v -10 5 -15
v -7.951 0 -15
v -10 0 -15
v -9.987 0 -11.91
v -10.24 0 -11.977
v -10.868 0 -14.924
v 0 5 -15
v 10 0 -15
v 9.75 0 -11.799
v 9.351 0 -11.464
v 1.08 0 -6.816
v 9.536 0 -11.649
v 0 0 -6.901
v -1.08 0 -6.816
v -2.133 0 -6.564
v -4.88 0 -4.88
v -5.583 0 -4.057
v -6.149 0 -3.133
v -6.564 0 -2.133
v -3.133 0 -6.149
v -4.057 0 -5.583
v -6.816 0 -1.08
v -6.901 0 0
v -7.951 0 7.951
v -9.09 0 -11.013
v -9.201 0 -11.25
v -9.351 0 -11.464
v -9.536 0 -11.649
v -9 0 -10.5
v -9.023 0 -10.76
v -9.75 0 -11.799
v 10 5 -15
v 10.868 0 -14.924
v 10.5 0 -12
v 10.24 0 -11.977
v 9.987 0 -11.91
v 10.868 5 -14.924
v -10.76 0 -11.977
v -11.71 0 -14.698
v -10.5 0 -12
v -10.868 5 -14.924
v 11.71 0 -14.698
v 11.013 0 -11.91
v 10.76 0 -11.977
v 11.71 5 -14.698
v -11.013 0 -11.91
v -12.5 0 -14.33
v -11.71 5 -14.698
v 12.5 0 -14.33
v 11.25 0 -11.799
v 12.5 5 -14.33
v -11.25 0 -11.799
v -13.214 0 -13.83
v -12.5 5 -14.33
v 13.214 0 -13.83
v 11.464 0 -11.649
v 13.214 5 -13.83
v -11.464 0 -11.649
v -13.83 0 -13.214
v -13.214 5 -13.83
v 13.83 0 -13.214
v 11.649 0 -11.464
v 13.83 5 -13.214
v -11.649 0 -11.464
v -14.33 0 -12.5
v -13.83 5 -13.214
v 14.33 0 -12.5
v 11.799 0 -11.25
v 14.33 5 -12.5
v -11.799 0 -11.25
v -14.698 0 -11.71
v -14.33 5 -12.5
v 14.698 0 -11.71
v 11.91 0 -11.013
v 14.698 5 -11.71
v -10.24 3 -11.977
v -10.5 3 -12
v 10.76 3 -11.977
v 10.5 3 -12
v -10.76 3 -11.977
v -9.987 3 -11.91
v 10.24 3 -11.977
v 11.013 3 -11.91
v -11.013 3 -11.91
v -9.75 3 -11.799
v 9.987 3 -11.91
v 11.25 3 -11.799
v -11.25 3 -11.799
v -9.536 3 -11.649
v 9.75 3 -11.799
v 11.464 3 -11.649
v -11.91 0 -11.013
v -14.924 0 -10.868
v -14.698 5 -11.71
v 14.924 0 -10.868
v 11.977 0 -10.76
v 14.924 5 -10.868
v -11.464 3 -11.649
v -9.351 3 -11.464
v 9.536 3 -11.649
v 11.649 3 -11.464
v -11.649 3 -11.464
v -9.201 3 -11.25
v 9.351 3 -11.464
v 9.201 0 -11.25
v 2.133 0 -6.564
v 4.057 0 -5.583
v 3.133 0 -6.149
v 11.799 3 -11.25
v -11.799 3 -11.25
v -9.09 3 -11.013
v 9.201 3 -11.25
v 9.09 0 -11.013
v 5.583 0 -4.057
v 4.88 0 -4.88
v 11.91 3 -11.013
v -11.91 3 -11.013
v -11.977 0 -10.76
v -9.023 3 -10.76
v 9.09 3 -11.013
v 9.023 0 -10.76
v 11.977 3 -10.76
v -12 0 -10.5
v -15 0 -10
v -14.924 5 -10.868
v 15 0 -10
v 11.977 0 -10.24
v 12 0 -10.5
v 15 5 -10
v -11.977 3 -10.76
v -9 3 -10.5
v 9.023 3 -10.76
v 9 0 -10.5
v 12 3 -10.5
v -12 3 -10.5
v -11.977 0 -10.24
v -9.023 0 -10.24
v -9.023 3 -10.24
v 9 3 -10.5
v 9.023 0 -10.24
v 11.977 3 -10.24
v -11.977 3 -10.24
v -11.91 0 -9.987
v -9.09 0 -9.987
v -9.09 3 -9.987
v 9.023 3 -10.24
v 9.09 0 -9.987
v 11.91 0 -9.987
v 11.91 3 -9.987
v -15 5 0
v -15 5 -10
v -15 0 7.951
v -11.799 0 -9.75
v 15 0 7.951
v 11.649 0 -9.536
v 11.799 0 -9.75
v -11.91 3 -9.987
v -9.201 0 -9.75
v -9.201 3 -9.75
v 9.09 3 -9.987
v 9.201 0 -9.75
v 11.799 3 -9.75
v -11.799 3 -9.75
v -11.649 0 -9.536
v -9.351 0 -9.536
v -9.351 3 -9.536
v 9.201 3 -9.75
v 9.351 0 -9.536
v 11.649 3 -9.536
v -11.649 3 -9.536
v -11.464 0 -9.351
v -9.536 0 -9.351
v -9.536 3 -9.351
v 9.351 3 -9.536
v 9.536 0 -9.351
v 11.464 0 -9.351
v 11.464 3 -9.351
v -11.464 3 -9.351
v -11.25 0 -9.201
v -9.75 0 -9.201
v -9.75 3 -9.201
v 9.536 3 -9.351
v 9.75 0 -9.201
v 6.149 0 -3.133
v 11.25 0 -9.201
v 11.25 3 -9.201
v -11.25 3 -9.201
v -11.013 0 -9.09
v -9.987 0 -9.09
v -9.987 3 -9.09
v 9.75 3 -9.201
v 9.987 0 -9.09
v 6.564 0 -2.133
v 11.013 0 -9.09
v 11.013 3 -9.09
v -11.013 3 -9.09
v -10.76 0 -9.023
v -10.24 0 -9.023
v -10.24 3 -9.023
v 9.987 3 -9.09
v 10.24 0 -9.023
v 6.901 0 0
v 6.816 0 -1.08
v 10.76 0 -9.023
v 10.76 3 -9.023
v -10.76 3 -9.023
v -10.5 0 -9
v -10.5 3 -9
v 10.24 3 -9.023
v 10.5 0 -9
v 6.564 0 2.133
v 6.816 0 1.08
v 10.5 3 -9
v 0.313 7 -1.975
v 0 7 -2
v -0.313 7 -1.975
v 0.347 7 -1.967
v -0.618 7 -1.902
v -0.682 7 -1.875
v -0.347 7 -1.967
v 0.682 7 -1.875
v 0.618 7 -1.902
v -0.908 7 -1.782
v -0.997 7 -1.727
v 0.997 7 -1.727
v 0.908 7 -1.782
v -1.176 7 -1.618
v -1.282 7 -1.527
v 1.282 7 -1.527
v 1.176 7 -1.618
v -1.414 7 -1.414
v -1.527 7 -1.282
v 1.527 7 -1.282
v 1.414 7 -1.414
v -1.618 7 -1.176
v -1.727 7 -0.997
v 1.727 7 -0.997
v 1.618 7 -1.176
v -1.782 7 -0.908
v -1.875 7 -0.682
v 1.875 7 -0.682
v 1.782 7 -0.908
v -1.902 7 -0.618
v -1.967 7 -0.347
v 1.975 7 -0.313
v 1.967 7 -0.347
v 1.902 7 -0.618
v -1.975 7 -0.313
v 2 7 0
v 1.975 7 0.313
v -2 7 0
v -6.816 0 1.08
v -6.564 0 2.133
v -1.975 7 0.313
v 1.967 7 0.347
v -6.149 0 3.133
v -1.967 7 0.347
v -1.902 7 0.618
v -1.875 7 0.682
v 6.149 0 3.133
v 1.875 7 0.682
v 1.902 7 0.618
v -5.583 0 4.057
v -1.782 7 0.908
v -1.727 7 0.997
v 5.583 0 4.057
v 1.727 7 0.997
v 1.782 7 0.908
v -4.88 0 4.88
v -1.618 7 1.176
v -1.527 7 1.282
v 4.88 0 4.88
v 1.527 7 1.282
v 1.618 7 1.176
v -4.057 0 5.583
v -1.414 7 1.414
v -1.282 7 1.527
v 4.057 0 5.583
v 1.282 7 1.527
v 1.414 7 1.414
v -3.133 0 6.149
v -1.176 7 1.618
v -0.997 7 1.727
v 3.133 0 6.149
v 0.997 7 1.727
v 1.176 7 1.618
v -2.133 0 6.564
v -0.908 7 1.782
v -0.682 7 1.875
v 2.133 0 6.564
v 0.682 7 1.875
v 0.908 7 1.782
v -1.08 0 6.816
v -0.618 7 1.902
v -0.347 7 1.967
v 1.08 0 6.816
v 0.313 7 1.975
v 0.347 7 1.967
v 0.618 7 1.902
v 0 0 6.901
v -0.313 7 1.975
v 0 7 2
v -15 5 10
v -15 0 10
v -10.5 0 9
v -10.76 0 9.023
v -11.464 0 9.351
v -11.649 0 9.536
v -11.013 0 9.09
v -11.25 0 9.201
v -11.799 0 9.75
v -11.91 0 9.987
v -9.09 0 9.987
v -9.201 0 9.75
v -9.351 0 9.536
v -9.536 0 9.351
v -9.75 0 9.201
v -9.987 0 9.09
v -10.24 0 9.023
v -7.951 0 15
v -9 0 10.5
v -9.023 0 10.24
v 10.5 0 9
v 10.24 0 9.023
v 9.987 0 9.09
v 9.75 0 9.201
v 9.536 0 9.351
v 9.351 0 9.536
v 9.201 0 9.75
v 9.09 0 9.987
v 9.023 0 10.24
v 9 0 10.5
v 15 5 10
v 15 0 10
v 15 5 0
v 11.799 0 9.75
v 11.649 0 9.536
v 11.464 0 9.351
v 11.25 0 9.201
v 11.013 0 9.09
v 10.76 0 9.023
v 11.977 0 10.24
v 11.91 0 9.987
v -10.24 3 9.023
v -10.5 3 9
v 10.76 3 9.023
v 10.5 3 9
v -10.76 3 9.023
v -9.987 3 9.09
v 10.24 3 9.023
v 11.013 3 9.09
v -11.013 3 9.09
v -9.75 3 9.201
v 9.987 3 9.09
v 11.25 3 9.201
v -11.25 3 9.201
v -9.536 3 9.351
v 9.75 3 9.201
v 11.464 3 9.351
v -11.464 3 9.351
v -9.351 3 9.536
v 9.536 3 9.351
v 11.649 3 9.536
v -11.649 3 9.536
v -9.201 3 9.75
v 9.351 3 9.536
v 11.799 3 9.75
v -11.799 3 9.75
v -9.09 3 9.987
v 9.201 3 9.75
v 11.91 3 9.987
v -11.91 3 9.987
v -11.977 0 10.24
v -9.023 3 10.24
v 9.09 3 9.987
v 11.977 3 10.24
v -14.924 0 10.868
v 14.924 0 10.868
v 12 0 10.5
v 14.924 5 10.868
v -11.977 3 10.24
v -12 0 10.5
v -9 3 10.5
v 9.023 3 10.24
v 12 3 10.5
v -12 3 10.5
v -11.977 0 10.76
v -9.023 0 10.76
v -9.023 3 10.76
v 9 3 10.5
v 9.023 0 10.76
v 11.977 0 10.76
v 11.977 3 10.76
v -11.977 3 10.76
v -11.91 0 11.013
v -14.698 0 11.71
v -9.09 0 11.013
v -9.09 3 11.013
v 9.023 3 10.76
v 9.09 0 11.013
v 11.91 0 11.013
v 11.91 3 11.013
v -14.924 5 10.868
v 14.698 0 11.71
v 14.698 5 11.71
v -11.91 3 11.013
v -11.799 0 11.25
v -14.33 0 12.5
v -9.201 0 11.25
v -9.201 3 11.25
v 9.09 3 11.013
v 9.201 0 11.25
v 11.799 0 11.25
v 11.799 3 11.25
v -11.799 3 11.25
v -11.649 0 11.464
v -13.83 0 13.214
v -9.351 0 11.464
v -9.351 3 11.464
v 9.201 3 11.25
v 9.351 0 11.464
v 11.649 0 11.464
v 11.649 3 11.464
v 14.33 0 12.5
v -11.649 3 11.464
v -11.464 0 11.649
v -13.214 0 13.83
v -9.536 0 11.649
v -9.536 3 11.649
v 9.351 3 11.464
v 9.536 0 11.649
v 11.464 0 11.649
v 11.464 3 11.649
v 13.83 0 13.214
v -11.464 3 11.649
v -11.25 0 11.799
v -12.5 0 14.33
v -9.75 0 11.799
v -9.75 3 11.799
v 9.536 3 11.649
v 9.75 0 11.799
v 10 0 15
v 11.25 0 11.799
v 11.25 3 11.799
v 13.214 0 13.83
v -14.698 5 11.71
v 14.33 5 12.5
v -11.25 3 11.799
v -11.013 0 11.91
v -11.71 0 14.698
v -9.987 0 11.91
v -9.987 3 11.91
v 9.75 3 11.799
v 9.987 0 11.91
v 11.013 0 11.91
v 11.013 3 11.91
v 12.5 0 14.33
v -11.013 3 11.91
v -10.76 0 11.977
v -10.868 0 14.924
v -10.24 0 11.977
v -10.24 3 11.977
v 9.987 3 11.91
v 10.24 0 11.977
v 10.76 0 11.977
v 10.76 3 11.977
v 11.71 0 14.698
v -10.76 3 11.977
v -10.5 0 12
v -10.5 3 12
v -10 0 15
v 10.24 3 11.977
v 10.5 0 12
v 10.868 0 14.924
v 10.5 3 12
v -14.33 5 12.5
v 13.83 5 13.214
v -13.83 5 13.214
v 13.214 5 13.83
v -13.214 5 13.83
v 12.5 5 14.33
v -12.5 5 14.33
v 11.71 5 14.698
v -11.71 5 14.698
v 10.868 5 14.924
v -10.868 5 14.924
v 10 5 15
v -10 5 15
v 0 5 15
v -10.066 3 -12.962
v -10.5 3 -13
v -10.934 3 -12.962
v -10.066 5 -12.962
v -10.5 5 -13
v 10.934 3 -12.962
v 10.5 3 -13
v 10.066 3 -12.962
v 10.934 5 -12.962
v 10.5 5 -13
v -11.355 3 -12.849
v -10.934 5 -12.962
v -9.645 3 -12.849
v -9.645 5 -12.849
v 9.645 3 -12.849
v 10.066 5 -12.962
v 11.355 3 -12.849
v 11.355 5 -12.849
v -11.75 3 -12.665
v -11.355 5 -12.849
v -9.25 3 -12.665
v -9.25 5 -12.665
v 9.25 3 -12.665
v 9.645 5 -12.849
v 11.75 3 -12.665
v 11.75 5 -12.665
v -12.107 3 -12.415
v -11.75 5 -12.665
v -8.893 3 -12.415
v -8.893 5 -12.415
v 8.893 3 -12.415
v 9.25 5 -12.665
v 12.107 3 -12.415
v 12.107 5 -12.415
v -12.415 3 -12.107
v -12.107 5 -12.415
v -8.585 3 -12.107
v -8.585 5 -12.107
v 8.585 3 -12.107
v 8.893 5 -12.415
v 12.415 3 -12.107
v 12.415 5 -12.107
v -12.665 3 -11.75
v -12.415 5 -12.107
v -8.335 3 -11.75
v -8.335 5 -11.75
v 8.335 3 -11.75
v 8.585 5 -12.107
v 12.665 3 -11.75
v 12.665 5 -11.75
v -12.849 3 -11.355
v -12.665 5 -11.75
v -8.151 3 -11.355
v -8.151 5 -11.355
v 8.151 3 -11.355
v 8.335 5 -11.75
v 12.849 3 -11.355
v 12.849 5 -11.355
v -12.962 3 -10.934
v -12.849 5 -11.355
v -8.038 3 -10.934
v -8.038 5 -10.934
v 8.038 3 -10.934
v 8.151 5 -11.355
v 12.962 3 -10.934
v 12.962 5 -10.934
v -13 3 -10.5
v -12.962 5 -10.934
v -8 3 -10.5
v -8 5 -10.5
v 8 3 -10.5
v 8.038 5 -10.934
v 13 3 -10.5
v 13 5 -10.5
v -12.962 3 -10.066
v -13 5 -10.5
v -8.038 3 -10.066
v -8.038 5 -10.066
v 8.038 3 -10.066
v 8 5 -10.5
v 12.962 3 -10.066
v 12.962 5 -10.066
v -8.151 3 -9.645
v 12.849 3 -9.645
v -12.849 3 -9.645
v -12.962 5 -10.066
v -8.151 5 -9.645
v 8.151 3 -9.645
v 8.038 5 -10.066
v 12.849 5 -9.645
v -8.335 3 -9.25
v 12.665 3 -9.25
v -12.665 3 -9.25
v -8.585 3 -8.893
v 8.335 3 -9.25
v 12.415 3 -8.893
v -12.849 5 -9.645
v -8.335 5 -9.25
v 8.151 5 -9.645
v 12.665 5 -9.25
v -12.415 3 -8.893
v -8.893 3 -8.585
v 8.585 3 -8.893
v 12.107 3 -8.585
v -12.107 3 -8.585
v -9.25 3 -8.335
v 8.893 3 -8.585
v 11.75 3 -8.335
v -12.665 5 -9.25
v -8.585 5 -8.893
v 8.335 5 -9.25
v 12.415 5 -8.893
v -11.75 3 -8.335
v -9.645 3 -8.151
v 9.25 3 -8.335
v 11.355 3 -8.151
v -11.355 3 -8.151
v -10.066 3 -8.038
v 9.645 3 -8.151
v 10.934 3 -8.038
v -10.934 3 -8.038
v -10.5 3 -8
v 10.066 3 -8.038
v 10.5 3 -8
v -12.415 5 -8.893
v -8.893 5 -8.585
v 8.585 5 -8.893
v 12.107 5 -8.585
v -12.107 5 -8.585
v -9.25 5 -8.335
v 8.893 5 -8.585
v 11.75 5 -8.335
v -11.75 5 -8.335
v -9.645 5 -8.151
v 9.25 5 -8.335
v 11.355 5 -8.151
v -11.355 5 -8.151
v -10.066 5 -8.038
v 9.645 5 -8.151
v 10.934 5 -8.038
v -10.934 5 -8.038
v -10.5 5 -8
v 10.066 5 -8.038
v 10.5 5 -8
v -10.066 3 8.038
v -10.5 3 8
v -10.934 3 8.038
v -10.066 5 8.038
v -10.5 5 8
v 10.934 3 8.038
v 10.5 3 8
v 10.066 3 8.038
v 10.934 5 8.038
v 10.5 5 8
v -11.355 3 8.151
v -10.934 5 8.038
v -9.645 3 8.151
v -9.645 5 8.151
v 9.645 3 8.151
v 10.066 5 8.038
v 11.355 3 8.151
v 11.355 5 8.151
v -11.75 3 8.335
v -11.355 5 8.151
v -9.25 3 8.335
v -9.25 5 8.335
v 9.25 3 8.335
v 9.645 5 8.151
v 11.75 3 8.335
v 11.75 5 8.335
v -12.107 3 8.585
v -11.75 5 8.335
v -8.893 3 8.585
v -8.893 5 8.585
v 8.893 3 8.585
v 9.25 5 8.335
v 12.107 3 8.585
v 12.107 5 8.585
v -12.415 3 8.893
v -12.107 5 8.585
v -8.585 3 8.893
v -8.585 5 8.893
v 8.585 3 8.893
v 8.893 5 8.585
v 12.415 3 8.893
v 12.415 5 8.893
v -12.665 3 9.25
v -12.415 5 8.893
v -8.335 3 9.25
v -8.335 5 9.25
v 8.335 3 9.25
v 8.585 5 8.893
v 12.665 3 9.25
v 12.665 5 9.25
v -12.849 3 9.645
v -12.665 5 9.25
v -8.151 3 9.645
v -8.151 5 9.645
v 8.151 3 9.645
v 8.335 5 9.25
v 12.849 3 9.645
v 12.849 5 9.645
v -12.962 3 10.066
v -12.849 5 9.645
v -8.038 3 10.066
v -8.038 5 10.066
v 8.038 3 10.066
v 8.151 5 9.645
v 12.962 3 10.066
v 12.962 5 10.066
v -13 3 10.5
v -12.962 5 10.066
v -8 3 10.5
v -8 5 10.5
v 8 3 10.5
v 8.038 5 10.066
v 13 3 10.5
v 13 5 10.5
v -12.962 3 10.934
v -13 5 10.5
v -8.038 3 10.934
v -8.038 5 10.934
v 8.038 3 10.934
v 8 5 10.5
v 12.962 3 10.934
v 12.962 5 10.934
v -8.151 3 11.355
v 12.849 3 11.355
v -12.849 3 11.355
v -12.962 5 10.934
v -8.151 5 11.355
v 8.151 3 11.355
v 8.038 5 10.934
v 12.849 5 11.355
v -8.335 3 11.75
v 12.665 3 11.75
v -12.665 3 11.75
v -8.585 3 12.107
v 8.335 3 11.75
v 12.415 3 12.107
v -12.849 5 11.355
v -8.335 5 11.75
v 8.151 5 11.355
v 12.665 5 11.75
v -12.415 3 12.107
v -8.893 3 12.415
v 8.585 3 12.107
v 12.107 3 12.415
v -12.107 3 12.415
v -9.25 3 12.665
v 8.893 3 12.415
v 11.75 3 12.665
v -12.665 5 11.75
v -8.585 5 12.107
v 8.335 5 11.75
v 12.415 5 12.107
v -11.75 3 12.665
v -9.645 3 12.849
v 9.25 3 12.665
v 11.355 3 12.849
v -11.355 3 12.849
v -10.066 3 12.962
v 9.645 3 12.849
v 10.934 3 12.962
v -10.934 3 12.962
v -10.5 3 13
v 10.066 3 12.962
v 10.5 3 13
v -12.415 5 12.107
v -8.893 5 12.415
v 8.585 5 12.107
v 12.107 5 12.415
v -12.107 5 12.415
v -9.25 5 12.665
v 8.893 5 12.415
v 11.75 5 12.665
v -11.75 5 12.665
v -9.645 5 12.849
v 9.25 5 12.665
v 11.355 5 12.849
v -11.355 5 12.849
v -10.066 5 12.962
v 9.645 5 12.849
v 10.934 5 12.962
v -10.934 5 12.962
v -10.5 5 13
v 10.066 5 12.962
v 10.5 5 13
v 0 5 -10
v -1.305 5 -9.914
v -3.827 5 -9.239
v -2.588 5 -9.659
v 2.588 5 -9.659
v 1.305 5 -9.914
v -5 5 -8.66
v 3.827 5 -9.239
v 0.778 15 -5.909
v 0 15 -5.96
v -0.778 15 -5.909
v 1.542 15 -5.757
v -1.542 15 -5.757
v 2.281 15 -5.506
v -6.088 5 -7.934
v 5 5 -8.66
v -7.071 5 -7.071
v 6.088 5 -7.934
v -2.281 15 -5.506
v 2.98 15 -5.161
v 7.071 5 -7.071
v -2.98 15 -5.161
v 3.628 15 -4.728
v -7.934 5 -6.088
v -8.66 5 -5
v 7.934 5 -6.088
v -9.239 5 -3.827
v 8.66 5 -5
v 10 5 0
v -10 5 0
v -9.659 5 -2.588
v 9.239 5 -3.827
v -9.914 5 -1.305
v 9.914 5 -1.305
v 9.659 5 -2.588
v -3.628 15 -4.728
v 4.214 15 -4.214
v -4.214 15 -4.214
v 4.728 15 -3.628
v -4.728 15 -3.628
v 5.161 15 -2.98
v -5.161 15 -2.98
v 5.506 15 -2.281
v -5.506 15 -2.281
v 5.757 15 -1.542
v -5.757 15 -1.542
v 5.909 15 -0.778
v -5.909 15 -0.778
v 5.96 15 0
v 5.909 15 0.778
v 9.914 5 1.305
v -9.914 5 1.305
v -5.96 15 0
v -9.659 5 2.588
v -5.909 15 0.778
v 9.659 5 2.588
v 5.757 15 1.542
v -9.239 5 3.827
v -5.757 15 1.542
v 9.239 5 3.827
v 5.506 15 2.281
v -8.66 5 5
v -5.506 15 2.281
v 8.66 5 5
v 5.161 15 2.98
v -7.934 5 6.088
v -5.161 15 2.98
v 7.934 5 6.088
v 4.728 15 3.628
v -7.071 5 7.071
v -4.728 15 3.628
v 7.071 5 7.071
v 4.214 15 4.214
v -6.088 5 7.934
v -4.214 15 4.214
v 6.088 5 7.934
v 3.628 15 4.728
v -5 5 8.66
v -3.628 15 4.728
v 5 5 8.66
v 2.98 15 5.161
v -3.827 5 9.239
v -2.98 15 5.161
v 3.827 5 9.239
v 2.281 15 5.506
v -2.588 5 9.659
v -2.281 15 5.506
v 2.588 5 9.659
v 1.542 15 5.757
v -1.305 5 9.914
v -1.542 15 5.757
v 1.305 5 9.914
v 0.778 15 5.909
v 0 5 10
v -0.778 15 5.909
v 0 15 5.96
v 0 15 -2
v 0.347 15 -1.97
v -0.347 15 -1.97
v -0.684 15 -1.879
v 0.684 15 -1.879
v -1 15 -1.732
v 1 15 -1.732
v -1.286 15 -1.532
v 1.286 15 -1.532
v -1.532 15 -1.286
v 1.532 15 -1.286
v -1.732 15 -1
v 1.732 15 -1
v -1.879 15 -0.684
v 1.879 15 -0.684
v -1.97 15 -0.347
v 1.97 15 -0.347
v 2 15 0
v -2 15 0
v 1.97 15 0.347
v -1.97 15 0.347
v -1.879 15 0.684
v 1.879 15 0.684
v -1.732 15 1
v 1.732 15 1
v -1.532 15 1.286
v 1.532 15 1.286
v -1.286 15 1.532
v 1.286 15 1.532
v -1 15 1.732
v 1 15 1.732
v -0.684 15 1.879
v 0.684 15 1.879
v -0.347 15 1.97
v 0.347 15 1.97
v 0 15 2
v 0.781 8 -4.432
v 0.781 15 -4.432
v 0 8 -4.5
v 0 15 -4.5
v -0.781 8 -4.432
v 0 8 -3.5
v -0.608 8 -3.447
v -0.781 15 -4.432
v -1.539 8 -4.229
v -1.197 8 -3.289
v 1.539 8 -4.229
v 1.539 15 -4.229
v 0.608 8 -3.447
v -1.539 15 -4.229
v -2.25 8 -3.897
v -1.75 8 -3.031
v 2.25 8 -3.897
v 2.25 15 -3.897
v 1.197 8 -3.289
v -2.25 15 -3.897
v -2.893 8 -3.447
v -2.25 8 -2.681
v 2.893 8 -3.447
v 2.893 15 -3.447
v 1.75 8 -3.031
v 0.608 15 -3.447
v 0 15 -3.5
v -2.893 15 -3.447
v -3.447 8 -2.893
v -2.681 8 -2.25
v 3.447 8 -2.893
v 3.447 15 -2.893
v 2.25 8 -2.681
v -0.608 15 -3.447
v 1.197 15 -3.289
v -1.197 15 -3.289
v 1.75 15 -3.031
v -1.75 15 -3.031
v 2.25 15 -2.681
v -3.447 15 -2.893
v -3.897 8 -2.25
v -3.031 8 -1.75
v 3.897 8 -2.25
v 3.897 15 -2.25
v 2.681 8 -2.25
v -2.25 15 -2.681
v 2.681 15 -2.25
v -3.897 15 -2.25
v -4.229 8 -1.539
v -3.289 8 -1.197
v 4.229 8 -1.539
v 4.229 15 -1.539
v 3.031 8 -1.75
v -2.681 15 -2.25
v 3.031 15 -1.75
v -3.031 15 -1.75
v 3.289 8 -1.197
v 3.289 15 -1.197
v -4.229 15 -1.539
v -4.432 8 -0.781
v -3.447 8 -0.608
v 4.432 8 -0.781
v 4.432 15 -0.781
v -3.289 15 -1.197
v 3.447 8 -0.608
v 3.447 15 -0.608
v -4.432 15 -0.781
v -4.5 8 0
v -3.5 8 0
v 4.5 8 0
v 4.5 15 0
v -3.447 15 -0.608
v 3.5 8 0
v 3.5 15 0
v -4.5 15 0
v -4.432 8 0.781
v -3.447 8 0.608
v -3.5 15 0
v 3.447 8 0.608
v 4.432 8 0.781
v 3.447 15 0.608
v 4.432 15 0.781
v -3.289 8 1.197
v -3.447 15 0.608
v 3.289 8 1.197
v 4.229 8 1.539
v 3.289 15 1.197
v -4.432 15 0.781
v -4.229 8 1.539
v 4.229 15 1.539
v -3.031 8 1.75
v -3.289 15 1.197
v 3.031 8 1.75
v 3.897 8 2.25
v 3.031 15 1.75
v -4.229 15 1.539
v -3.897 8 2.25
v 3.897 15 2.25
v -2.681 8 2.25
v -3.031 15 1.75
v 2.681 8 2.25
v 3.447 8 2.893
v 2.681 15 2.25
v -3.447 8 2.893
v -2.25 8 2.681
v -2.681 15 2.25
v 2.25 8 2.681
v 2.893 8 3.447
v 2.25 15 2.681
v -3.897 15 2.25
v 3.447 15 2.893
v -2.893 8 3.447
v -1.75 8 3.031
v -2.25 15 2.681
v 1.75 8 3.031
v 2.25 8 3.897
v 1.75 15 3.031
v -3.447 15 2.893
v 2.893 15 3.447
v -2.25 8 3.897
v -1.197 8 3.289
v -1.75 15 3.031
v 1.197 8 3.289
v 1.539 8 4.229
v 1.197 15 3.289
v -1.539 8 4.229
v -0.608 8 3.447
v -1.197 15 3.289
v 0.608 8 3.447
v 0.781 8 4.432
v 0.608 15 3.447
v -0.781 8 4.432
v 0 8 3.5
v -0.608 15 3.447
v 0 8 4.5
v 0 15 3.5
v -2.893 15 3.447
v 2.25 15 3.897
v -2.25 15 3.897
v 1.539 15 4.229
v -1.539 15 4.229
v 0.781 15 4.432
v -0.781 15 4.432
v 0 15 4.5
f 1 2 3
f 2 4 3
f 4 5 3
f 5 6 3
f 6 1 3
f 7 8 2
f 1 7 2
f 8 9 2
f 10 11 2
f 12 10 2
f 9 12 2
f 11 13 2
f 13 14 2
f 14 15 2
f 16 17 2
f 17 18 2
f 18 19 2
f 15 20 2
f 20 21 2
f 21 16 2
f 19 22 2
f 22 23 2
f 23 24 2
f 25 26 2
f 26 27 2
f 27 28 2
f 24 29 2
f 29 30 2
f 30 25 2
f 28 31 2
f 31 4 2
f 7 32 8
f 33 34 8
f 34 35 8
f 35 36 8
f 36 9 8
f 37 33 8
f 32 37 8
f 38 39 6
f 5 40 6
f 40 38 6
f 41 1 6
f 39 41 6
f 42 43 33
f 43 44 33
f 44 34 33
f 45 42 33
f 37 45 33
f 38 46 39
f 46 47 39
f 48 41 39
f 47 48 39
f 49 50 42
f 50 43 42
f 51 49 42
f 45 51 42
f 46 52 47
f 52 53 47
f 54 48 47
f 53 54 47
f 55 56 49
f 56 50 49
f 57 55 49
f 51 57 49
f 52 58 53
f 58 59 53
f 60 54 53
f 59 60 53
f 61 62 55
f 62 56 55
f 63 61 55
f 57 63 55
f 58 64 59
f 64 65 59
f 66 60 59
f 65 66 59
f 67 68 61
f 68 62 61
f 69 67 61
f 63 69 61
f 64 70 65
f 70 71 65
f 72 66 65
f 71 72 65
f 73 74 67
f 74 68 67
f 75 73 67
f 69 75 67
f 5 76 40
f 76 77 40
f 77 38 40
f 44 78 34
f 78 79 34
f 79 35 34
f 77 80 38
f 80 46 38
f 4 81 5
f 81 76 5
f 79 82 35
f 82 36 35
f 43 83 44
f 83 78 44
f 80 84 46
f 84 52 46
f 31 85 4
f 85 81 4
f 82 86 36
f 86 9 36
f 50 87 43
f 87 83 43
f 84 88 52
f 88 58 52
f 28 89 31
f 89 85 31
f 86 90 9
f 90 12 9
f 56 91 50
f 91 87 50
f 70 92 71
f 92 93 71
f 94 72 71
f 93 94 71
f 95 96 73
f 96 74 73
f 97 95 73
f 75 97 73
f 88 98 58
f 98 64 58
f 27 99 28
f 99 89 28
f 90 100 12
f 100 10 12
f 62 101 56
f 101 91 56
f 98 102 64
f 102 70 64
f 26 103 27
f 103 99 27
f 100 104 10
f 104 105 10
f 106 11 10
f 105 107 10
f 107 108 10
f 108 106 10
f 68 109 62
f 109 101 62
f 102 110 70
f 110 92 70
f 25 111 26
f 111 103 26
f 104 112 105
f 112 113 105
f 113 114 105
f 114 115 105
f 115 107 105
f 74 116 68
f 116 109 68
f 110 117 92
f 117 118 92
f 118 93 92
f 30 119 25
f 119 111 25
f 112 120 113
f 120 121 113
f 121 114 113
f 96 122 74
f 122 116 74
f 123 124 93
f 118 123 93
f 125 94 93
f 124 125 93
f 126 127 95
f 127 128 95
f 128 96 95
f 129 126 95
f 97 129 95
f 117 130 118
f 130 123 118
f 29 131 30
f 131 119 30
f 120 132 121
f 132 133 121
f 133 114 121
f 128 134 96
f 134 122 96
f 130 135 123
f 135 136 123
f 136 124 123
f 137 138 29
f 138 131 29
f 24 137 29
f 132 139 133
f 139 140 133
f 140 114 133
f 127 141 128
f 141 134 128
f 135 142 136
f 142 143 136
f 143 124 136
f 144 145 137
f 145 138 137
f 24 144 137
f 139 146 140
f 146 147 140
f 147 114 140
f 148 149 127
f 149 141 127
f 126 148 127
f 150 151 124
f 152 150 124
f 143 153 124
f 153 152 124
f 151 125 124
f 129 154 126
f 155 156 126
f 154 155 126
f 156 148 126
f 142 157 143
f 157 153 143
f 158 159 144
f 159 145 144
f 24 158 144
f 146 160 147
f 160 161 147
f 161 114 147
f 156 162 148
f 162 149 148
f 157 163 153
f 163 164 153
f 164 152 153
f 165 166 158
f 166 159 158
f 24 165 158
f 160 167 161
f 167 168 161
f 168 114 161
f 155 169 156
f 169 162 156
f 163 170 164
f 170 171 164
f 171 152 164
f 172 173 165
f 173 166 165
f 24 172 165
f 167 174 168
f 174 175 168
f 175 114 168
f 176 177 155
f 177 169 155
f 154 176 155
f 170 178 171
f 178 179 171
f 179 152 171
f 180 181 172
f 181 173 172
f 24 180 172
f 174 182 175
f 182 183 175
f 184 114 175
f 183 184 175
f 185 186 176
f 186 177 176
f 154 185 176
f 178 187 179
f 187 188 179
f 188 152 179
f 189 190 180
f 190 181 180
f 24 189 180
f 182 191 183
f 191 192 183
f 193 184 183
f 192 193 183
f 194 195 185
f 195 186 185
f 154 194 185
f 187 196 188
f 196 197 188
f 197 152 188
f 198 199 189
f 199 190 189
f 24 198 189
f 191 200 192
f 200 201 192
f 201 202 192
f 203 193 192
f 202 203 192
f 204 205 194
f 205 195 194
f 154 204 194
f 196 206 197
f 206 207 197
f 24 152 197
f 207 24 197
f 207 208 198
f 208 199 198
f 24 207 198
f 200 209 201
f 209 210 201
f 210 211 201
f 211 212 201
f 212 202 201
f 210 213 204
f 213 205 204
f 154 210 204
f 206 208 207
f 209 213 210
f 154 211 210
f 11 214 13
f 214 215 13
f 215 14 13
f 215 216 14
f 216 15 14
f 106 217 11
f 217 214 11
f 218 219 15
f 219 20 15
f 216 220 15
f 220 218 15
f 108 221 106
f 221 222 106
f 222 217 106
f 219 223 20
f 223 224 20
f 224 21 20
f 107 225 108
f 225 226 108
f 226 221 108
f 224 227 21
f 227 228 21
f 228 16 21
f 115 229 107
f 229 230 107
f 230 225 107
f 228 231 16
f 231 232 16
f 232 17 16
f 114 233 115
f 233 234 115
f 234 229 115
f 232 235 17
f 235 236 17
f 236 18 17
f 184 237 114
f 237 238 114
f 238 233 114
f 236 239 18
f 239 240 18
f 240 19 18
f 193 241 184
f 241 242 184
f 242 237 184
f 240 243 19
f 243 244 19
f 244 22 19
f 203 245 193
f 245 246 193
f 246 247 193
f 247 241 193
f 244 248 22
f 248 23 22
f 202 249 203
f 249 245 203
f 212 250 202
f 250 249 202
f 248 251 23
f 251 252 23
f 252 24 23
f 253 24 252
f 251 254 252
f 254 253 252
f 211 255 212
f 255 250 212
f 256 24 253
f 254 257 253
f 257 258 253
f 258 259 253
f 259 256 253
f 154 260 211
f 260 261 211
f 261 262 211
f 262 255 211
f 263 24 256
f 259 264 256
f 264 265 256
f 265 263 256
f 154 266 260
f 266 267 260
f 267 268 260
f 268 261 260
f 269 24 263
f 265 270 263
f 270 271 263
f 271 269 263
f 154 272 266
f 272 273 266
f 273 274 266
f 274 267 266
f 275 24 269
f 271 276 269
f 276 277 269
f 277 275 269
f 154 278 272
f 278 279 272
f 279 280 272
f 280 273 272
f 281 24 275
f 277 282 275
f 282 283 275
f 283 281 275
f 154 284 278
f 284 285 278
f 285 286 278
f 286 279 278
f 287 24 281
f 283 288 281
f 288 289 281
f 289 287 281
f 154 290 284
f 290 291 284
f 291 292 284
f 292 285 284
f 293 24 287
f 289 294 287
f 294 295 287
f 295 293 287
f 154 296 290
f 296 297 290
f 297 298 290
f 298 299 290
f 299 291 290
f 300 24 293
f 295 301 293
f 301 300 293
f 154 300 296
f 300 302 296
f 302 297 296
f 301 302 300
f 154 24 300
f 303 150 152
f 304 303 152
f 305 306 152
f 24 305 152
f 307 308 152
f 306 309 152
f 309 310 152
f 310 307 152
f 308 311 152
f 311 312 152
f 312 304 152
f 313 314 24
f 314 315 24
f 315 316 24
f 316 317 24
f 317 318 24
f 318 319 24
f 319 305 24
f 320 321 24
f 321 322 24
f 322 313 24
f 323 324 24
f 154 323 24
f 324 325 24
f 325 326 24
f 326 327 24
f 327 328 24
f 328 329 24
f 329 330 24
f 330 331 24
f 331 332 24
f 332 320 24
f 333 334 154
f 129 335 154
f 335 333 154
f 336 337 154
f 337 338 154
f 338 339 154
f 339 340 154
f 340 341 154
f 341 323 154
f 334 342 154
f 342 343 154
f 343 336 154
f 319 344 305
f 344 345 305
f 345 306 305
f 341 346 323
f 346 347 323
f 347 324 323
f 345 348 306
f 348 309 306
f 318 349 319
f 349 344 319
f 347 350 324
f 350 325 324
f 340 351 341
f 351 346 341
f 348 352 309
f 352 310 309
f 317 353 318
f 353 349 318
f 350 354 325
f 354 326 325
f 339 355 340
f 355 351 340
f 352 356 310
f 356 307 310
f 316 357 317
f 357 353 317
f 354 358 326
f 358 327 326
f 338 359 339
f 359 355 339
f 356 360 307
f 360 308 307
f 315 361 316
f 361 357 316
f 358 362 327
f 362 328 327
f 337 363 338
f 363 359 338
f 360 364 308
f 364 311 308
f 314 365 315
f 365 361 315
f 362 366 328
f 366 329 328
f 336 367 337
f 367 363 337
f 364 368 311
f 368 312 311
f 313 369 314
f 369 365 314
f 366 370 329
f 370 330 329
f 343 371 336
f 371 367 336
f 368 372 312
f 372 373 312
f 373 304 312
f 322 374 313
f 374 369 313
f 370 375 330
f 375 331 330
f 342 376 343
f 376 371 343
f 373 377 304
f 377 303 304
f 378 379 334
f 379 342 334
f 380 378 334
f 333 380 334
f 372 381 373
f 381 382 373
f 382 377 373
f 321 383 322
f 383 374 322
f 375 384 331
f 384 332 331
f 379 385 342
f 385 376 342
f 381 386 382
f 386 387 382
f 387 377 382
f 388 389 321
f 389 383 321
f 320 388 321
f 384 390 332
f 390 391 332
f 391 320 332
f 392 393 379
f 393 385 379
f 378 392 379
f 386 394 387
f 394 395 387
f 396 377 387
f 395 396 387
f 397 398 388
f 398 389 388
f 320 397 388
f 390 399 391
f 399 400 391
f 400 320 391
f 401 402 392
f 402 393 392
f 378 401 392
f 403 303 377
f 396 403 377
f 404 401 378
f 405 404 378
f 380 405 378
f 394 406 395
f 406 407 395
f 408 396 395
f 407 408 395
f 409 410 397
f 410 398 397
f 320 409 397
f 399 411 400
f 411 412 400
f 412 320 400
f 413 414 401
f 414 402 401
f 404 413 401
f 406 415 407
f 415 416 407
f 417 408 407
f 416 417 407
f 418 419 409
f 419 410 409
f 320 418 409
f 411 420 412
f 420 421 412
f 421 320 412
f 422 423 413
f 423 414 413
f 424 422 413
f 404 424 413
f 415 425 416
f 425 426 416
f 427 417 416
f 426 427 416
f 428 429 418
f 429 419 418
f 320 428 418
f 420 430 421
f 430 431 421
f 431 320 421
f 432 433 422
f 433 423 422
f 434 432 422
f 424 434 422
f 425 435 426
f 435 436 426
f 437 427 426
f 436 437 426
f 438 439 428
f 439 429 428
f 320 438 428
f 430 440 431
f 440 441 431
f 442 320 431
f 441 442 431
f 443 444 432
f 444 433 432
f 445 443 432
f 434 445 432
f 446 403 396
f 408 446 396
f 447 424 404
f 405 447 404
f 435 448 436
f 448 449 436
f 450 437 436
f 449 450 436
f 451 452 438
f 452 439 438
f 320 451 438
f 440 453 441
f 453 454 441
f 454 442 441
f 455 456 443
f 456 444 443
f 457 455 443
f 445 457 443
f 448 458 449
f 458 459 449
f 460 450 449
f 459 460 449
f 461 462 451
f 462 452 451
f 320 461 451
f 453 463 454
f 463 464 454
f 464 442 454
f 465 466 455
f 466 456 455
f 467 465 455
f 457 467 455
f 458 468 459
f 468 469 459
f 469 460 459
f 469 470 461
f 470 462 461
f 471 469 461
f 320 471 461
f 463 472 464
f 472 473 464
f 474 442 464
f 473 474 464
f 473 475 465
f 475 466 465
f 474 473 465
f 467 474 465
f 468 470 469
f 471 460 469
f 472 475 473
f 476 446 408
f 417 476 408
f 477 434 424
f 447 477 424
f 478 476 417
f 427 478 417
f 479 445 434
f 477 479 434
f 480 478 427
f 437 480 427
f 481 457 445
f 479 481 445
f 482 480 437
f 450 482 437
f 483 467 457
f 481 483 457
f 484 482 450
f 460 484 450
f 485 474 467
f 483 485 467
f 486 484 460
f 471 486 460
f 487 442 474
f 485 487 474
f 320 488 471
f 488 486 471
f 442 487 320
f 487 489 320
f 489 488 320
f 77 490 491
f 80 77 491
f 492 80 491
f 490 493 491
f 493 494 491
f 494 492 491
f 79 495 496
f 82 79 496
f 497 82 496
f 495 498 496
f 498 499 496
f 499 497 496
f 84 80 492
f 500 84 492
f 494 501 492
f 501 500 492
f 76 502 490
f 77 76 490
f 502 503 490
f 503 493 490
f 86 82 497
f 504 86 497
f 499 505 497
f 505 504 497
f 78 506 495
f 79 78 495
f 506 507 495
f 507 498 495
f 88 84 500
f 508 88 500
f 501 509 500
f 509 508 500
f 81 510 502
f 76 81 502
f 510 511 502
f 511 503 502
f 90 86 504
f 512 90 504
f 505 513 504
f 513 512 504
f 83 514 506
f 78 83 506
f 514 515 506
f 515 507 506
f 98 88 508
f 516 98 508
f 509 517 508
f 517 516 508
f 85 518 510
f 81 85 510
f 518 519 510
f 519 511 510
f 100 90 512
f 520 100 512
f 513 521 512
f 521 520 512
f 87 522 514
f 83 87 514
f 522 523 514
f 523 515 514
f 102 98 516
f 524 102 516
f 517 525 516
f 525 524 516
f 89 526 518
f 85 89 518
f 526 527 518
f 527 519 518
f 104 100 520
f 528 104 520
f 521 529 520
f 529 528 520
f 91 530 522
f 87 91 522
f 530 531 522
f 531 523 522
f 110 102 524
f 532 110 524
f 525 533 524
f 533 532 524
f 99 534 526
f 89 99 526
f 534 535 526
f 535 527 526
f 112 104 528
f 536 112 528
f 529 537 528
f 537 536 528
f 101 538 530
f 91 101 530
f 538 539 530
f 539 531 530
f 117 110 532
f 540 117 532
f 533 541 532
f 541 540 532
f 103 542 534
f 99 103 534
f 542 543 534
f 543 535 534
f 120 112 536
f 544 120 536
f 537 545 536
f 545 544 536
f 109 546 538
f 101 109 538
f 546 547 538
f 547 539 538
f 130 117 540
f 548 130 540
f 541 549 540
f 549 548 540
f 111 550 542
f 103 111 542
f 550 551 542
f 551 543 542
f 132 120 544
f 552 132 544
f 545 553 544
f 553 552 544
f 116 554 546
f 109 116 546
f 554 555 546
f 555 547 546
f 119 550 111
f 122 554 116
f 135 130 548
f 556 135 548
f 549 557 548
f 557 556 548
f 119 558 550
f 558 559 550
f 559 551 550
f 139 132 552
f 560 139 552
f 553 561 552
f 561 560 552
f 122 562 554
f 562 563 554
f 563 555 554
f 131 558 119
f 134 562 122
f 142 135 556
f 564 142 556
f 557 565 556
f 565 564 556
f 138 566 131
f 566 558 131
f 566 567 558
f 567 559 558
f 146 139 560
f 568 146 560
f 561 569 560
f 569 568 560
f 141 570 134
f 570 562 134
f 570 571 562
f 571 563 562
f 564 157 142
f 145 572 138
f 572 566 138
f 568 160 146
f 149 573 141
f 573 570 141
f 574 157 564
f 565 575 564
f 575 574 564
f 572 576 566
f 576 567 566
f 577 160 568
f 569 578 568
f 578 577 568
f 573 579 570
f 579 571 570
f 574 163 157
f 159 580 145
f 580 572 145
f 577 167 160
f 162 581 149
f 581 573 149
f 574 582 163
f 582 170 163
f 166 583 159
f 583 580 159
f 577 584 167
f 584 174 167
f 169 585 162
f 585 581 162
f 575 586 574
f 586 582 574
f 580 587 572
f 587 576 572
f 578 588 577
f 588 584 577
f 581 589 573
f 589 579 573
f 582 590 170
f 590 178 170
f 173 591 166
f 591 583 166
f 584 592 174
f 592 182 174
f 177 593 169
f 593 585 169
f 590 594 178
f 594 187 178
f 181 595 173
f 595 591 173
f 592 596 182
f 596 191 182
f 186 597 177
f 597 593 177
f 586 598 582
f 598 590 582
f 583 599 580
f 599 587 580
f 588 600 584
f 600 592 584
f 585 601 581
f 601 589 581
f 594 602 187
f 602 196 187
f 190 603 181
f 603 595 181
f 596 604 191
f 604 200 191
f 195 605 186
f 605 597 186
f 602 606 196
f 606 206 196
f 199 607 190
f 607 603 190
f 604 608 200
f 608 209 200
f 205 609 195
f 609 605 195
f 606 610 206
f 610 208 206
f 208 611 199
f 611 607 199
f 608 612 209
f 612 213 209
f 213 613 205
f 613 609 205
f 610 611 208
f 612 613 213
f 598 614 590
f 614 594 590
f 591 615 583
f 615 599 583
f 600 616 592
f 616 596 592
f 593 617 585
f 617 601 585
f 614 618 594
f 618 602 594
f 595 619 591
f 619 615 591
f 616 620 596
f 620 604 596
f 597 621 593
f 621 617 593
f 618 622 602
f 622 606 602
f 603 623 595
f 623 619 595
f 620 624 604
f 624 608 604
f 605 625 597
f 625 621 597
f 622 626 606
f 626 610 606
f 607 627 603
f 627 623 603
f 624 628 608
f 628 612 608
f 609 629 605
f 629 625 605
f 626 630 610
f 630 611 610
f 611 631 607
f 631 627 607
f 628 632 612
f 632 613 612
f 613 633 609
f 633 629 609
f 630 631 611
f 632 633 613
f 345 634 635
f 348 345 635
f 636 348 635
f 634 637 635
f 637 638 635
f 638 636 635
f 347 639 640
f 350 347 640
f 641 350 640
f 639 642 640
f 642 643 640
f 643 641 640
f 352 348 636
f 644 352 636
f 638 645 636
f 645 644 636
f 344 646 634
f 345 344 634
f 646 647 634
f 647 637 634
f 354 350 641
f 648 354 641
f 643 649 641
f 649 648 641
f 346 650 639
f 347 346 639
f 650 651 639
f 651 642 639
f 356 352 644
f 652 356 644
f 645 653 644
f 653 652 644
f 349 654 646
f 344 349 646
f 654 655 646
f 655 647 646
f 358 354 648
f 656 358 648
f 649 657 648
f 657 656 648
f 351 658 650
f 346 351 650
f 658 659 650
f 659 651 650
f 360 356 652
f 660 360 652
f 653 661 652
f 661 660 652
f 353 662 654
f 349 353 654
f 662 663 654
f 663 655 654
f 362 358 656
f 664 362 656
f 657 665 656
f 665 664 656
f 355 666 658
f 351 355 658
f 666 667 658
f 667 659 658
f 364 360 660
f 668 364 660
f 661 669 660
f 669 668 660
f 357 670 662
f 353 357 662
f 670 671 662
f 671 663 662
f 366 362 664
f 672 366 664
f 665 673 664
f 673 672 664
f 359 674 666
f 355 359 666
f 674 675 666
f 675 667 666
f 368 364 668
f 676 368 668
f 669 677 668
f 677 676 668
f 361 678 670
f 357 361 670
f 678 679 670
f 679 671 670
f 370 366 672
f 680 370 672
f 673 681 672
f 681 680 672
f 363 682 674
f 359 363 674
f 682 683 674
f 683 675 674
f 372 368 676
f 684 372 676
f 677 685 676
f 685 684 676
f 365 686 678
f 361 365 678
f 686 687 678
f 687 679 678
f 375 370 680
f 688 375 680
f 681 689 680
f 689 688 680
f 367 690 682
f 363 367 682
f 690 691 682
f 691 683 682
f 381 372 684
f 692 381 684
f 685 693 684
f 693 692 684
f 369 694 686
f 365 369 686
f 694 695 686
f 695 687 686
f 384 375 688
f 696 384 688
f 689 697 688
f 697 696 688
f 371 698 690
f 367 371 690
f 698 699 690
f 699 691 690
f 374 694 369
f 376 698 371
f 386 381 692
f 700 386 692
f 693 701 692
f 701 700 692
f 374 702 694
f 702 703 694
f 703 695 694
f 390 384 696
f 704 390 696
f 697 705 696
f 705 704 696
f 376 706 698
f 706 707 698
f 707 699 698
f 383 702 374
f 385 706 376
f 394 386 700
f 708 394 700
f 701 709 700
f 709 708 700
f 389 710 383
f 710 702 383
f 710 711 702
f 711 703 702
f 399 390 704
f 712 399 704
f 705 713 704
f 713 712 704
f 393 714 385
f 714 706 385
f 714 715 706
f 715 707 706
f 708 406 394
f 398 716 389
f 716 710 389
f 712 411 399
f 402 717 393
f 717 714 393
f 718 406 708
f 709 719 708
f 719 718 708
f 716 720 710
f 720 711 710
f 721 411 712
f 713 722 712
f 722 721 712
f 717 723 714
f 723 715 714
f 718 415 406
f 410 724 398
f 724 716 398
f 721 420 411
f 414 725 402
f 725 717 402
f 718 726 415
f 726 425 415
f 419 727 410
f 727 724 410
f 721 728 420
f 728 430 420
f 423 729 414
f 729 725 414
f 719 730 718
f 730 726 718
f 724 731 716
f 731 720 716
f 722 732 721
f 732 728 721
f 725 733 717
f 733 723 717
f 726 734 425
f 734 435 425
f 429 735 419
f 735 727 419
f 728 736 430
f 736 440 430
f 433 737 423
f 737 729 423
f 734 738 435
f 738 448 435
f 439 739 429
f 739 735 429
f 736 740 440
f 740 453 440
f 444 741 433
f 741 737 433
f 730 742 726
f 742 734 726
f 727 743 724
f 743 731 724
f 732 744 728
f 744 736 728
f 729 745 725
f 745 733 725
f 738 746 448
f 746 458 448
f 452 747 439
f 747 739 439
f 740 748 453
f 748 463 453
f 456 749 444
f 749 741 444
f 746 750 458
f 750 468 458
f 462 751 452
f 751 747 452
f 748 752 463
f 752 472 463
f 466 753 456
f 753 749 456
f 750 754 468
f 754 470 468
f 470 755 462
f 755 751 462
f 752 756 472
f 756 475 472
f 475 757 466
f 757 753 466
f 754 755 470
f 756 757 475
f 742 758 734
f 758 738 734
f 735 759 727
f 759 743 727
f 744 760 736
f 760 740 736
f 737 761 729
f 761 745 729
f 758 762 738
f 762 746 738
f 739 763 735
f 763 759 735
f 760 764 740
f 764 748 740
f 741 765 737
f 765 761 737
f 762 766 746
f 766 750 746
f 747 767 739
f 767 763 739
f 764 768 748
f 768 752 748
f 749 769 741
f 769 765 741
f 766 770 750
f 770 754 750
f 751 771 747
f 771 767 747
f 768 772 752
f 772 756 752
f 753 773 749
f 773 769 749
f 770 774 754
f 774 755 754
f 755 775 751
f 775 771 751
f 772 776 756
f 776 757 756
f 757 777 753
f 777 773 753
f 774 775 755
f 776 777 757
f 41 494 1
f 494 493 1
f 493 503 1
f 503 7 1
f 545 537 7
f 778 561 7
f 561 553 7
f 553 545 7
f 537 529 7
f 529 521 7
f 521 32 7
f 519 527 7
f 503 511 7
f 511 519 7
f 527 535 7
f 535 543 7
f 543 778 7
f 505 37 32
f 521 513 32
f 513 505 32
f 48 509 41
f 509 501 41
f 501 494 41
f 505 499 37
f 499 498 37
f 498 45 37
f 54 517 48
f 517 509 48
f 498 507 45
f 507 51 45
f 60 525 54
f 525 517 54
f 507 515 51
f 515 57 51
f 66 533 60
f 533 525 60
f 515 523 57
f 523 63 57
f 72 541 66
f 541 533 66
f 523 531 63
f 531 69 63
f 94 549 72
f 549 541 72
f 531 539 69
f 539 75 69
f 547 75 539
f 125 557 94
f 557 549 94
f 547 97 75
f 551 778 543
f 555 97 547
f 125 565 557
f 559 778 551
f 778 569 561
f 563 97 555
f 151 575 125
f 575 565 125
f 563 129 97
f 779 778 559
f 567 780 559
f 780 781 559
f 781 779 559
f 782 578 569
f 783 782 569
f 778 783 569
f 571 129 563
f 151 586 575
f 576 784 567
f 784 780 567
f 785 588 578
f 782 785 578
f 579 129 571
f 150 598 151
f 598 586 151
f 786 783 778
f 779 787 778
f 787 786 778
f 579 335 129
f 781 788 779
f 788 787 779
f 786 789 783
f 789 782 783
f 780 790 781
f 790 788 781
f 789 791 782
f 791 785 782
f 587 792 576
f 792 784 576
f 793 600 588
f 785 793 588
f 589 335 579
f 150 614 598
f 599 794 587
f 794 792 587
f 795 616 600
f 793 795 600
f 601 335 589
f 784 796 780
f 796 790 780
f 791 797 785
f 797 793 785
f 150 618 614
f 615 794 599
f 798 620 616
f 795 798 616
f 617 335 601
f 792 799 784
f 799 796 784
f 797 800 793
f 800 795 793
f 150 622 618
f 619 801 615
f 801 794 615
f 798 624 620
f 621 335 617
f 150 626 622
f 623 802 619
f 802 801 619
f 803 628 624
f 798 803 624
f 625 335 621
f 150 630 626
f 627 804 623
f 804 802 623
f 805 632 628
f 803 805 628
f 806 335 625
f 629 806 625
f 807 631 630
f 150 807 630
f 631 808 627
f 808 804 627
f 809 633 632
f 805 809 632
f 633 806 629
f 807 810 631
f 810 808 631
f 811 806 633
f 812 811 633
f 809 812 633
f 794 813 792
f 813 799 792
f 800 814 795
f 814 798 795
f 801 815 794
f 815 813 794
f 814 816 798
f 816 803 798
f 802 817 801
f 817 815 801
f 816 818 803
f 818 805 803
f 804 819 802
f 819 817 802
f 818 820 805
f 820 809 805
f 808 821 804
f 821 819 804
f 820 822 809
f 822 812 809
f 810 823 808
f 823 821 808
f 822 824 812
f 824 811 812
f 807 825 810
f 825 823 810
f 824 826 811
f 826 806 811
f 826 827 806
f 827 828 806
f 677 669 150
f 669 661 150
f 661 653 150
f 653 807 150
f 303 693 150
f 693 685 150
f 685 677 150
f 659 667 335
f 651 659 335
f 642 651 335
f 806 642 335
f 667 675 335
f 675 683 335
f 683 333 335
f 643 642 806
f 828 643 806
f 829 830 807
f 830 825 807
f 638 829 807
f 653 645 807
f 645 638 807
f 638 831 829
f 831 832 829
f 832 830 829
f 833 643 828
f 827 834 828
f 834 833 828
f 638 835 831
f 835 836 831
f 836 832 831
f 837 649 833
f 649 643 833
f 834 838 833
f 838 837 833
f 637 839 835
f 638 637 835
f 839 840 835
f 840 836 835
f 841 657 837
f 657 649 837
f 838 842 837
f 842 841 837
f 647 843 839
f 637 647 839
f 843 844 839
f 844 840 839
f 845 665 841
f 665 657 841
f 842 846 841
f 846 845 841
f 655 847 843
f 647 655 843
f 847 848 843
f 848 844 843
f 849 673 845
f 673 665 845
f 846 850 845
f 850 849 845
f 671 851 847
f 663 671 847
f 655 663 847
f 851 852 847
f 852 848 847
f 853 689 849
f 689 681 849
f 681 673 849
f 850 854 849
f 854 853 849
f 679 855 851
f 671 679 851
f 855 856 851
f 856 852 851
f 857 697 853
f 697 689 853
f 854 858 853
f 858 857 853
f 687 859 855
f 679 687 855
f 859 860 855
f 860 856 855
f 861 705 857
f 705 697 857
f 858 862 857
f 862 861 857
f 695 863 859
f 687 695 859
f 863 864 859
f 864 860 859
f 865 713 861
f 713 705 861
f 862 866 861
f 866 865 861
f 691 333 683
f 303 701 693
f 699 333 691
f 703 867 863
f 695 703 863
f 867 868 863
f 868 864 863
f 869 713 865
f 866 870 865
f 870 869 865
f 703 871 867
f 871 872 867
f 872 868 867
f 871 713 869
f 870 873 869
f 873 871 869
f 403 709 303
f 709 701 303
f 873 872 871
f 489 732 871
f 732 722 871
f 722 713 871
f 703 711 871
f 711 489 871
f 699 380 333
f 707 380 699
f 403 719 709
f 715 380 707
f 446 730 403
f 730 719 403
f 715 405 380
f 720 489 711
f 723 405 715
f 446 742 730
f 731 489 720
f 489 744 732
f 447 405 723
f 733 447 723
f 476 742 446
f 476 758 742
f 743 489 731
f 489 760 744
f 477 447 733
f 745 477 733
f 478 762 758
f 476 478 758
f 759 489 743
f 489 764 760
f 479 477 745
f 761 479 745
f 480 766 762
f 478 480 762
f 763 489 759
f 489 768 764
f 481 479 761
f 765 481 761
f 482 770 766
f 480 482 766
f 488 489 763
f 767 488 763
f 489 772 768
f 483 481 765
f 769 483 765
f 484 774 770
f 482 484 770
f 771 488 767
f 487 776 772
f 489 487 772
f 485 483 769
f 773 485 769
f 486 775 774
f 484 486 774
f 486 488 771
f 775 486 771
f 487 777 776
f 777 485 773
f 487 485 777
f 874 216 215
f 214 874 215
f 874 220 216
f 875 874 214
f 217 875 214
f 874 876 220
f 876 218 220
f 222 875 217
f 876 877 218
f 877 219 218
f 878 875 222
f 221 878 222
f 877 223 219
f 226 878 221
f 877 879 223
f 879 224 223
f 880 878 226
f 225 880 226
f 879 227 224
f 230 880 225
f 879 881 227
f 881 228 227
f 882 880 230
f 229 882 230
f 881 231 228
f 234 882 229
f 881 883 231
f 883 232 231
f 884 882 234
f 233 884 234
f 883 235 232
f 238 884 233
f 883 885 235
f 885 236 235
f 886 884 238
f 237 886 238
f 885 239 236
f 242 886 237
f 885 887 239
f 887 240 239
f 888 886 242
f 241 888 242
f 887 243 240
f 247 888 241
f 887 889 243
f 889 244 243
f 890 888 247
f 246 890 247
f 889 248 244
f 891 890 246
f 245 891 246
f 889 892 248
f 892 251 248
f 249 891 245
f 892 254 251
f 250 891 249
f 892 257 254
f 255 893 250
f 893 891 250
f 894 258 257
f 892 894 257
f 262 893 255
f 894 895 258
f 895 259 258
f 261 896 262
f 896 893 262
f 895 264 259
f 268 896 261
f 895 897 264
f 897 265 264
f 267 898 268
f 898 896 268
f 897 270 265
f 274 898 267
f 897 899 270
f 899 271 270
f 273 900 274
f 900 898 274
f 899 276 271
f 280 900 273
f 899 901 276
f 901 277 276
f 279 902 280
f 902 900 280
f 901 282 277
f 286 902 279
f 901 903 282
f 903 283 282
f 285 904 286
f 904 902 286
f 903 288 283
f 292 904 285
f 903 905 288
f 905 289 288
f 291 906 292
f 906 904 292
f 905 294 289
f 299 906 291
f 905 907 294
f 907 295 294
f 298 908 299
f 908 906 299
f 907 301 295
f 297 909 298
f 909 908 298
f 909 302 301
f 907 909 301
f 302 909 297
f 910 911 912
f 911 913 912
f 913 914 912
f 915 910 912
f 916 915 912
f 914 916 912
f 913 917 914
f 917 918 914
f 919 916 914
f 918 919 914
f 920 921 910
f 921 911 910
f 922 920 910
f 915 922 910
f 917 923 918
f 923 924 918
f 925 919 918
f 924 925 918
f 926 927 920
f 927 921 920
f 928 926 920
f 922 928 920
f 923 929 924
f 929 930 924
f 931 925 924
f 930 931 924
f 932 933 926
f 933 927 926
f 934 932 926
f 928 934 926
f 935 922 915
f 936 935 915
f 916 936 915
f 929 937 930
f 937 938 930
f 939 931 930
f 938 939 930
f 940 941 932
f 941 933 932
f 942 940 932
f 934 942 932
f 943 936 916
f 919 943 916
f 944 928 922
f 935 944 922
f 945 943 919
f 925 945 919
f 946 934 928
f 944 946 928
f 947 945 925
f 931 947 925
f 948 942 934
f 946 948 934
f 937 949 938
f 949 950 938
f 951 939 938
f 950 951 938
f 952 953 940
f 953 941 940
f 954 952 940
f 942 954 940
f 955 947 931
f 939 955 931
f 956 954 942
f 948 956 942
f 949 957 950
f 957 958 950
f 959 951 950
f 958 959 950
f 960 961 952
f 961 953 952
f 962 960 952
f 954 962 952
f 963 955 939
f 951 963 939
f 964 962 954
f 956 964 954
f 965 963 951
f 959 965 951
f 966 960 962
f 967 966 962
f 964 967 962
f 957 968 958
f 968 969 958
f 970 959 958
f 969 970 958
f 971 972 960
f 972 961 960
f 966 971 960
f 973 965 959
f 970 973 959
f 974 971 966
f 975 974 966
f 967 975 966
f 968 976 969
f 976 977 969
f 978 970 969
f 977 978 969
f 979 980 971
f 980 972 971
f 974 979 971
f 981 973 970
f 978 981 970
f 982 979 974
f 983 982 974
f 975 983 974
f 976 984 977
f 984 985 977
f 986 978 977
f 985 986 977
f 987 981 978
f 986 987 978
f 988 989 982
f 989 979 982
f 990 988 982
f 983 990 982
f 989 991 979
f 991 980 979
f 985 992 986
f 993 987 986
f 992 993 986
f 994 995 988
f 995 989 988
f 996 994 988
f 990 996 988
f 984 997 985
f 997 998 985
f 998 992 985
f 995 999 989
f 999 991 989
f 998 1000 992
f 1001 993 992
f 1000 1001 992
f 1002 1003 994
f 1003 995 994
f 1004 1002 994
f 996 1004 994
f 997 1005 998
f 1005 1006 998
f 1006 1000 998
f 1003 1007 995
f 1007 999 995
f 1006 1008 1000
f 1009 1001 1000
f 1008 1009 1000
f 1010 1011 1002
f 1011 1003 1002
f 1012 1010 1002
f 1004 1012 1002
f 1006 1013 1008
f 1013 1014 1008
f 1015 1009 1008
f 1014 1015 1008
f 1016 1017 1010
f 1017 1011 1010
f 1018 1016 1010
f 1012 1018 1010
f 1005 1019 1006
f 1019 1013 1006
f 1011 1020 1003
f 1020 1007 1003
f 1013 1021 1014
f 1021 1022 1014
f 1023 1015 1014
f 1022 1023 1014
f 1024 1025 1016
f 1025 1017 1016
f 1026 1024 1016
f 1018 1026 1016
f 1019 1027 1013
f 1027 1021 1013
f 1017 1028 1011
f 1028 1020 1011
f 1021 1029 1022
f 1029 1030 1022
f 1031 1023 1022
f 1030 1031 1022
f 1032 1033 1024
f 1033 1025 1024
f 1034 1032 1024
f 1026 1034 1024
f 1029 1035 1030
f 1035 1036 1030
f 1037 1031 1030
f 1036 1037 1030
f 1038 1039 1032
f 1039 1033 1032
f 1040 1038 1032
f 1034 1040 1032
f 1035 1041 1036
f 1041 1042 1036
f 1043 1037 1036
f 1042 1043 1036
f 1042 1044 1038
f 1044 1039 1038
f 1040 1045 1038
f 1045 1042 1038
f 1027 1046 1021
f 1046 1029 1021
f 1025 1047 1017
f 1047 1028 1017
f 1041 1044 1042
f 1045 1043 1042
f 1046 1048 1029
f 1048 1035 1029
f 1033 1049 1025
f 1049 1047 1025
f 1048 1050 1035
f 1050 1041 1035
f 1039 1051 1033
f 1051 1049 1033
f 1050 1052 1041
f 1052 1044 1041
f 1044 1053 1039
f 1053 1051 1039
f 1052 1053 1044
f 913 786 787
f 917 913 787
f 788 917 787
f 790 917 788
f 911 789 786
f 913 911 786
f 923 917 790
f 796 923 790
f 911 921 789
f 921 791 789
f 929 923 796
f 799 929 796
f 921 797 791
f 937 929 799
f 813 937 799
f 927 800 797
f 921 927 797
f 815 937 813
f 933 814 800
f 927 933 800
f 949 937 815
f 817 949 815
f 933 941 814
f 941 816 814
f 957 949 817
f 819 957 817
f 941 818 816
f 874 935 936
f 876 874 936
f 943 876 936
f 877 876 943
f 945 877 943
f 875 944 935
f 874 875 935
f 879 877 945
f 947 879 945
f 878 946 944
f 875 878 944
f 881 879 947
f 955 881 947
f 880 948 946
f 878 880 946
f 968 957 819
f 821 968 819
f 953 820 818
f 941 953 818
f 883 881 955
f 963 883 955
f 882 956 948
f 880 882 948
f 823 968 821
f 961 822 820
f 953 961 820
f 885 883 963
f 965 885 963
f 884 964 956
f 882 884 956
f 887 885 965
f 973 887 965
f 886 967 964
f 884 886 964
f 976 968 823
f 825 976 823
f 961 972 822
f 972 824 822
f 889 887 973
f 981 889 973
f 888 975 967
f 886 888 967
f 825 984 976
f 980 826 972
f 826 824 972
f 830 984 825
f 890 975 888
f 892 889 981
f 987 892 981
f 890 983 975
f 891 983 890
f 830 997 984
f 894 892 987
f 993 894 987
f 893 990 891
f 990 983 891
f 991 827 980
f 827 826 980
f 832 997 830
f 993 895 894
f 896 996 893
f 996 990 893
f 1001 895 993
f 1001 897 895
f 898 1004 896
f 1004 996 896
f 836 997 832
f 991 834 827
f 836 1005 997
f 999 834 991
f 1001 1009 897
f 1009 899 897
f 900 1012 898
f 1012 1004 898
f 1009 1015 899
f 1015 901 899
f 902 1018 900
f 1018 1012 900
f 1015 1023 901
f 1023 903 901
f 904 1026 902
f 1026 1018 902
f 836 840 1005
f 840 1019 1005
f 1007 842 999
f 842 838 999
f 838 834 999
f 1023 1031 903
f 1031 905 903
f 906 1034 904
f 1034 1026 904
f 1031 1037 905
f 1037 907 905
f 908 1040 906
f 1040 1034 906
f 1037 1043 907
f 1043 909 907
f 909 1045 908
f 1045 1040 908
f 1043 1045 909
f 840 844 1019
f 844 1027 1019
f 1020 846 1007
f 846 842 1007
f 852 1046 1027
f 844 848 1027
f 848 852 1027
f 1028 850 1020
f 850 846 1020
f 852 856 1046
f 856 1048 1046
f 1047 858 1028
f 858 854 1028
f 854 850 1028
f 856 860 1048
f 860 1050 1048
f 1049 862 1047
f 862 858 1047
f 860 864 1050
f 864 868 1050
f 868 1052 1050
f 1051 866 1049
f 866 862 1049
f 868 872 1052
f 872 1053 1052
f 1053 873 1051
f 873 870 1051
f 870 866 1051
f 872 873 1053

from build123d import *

# Parameters (mm, degrees)
SKETCH1_W               = 30
SKETCH1_H               = 30
BOSS_EXTRUDE1_DEPTH     = 5
SKETCH4_R               = 10
BOSS_EXTRUDE2_DEPTH     = 10
CUT_EXTRUDE3_DEPTH      = 26.980762114
CUT_EXTRUDE3_DEPTH_BACK = 26.980762114
SKETCH5_R               = 2
SKETCH6_R               = 4.5
SKETCH6_R_2             = 3.5
CUT_EXTRUDE4_DEPTH      = 7
CHAMFER1_SIZE           = 10
CHAMFER1_SIZE_2         = 4.040262258
CUT_EXTRUDE5_DEPTH      = 24.452078799
CUT_EXTRUDE5_DEPTH_BACK = 24.452078799
SKETCH8_R               = 1.5
SKETCH9_R               = 2.5
CUT_EXTRUDE6_DEPTH      = 2
FILLET1_R               = 5
CHAMFER2_SIZE           = 7
CHAMFER2_SIZE2          = 4.901452767


with BuildPart() as part:
    # Sketch1 → Boss-Extrude1 (new body)
    with BuildSketch(Plane(origin=(0, 0, 0), x_dir=(1, 0, 0), z_dir=(0, 1, 0))):
        Rectangle(SKETCH1_W, SKETCH1_H)
    extrude(amount=BOSS_EXTRUDE1_DEPTH)

    # Sketch4 → Boss-Extrude2 (add)
    with BuildSketch(Plane(origin=(0, 5, 0), x_dir=(1, 0, 0), z_dir=(0, 1, 0))):
        with Locations(Location((0, 0, 0), (0, 0, 270))):
            Circle(SKETCH4_R)
    extrude(amount=BOSS_EXTRUDE2_DEPTH)

    # Sketch5 → Cut-Extrude3 (cut, two sides: drawn at the far end of the back side and taken through both)
    with BuildSketch(Plane(origin=(0, 15, 0), x_dir=(1, 0, 0), z_dir=(0, 1, 0)).offset(-CUT_EXTRUDE3_DEPTH_BACK)):
        with Locations(Location((0, 0, 0), (0, 0, 270))):
            Circle(SKETCH5_R)
    extrude(amount=CUT_EXTRUDE3_DEPTH + CUT_EXTRUDE3_DEPTH_BACK, mode=Mode.SUBTRACT)

    # Sketch6 → Cut-Extrude4 (cut)
    with BuildSketch(Plane(origin=(0, 15, 0), x_dir=(1, 0, 0), z_dir=(0, 1, 0))):
        with Locations(Location((0, 0, 0), (0, 0, 270))):
            Circle(SKETCH6_R)
        with Locations(Location((0, 0, 0), (0, 0, 270))):
            Circle(SKETCH6_R_2, mode=Mode.SUBTRACT)
    extrude(amount=-CUT_EXTRUDE4_DEPTH, mode=Mode.SUBTRACT)

    # Chamfer1
    # the kernel refuses this chamfer: 10, 4.040262258 mm, written as the material it takes off along each edge
    with BuildSketch(Plane(origin=(0, 15, 0), x_dir=(0, 0, 1), z_dir=(-1, 0, 0))) as chamfer1_piece_1_section:
        Polygon((10, -CHAMFER1_SIZE), (10 - CHAMFER1_SIZE_2, 0), (10, 0), align=None)
    chamfer1_piece_1 = revolve(axis=Axis((0, 15, 0), (0, 1, 0)), mode=Mode.PRIVATE)
    chamfer1_piece_1 = split(chamfer1_piece_1, bisect_by=Plane(origin=(0, 5, -8.005876014), z_dir=(0, 1, 0)), keep=Keep.TOP, mode=Mode.PRIVATE)
    add(chamfer1_piece_1, mode=Mode.SUBTRACT)

    # Sketch8 → Cut-Extrude5 (cut, two sides: drawn at the far end of the back side and taken through both)
    with BuildSketch(Plane(origin=(0, 5, 0), x_dir=(1, 0, 0), z_dir=(0, 1, 0)).offset(-CUT_EXTRUDE5_DEPTH_BACK)):
        with Locations(Location((10.5, 10.5, 0), (0, 0, 270))):
            Circle(SKETCH8_R)
        with Locations(Location((10.5, -10.5, 0), (0, 0, 270))):
            Circle(SKETCH8_R)
        with Locations(Location((-10.5, -10.5, 0), (0, 0, 270))):
            Circle(SKETCH8_R)
        with Locations(Location((-10.5, 10.5, 0), (0, 0, 270))):
            Circle(SKETCH8_R)
    extrude(amount=CUT_EXTRUDE5_DEPTH + CUT_EXTRUDE5_DEPTH_BACK, mode=Mode.SUBTRACT)

    # Sketch9 → Cut-Extrude6 (cut)
    with BuildSketch(Plane(origin=(0, 5, 0), x_dir=(1, 0, 0), z_dir=(0, 1, 0))):
        with Locations(Location((-10.5, 10.5, 0), (0, 0, 270))):
            Circle(SKETCH9_R)
        with Locations(Location((10.5, 10.5, 0), (0, 0, 270))):
            Circle(SKETCH9_R)
        with Locations(Location((10.5, -10.5, 0), (0, 0, 270))):
            Circle(SKETCH9_R)
        with Locations(Location((-10.5, -10.5, 0), (0, 0, 270))):
            Circle(SKETCH9_R)
    extrude(amount=-CUT_EXTRUDE6_DEPTH, mode=Mode.SUBTRACT)

    # Fillet1
    fillet1_edges = [part.edges().sort_by_distance(p)[0] for p in [
        (15, 2.5, 15),
        (-15, 2.5, 15),
        (-15, 2.5, -15),
        (15, 2.5, -15),
    ]]
    fillet(fillet1_edges, radius=FILLET1_R)

    # Chamfer2
    chamfer2_edges = [part.edges().sort_by_distance(p)[0] for p in [
        (0, 0, -2),
    ]]
    chamfer2_side = [part.faces().sort_by_distance(p)[0] for p in [
        (0, 7.5, -2),
    ]]
    chamfer(chamfer2_edges, length=CHAMFER2_SIZE, length2=CHAMFER2_SIZE2, reference=chamfer2_side[0])


solid = part.part
